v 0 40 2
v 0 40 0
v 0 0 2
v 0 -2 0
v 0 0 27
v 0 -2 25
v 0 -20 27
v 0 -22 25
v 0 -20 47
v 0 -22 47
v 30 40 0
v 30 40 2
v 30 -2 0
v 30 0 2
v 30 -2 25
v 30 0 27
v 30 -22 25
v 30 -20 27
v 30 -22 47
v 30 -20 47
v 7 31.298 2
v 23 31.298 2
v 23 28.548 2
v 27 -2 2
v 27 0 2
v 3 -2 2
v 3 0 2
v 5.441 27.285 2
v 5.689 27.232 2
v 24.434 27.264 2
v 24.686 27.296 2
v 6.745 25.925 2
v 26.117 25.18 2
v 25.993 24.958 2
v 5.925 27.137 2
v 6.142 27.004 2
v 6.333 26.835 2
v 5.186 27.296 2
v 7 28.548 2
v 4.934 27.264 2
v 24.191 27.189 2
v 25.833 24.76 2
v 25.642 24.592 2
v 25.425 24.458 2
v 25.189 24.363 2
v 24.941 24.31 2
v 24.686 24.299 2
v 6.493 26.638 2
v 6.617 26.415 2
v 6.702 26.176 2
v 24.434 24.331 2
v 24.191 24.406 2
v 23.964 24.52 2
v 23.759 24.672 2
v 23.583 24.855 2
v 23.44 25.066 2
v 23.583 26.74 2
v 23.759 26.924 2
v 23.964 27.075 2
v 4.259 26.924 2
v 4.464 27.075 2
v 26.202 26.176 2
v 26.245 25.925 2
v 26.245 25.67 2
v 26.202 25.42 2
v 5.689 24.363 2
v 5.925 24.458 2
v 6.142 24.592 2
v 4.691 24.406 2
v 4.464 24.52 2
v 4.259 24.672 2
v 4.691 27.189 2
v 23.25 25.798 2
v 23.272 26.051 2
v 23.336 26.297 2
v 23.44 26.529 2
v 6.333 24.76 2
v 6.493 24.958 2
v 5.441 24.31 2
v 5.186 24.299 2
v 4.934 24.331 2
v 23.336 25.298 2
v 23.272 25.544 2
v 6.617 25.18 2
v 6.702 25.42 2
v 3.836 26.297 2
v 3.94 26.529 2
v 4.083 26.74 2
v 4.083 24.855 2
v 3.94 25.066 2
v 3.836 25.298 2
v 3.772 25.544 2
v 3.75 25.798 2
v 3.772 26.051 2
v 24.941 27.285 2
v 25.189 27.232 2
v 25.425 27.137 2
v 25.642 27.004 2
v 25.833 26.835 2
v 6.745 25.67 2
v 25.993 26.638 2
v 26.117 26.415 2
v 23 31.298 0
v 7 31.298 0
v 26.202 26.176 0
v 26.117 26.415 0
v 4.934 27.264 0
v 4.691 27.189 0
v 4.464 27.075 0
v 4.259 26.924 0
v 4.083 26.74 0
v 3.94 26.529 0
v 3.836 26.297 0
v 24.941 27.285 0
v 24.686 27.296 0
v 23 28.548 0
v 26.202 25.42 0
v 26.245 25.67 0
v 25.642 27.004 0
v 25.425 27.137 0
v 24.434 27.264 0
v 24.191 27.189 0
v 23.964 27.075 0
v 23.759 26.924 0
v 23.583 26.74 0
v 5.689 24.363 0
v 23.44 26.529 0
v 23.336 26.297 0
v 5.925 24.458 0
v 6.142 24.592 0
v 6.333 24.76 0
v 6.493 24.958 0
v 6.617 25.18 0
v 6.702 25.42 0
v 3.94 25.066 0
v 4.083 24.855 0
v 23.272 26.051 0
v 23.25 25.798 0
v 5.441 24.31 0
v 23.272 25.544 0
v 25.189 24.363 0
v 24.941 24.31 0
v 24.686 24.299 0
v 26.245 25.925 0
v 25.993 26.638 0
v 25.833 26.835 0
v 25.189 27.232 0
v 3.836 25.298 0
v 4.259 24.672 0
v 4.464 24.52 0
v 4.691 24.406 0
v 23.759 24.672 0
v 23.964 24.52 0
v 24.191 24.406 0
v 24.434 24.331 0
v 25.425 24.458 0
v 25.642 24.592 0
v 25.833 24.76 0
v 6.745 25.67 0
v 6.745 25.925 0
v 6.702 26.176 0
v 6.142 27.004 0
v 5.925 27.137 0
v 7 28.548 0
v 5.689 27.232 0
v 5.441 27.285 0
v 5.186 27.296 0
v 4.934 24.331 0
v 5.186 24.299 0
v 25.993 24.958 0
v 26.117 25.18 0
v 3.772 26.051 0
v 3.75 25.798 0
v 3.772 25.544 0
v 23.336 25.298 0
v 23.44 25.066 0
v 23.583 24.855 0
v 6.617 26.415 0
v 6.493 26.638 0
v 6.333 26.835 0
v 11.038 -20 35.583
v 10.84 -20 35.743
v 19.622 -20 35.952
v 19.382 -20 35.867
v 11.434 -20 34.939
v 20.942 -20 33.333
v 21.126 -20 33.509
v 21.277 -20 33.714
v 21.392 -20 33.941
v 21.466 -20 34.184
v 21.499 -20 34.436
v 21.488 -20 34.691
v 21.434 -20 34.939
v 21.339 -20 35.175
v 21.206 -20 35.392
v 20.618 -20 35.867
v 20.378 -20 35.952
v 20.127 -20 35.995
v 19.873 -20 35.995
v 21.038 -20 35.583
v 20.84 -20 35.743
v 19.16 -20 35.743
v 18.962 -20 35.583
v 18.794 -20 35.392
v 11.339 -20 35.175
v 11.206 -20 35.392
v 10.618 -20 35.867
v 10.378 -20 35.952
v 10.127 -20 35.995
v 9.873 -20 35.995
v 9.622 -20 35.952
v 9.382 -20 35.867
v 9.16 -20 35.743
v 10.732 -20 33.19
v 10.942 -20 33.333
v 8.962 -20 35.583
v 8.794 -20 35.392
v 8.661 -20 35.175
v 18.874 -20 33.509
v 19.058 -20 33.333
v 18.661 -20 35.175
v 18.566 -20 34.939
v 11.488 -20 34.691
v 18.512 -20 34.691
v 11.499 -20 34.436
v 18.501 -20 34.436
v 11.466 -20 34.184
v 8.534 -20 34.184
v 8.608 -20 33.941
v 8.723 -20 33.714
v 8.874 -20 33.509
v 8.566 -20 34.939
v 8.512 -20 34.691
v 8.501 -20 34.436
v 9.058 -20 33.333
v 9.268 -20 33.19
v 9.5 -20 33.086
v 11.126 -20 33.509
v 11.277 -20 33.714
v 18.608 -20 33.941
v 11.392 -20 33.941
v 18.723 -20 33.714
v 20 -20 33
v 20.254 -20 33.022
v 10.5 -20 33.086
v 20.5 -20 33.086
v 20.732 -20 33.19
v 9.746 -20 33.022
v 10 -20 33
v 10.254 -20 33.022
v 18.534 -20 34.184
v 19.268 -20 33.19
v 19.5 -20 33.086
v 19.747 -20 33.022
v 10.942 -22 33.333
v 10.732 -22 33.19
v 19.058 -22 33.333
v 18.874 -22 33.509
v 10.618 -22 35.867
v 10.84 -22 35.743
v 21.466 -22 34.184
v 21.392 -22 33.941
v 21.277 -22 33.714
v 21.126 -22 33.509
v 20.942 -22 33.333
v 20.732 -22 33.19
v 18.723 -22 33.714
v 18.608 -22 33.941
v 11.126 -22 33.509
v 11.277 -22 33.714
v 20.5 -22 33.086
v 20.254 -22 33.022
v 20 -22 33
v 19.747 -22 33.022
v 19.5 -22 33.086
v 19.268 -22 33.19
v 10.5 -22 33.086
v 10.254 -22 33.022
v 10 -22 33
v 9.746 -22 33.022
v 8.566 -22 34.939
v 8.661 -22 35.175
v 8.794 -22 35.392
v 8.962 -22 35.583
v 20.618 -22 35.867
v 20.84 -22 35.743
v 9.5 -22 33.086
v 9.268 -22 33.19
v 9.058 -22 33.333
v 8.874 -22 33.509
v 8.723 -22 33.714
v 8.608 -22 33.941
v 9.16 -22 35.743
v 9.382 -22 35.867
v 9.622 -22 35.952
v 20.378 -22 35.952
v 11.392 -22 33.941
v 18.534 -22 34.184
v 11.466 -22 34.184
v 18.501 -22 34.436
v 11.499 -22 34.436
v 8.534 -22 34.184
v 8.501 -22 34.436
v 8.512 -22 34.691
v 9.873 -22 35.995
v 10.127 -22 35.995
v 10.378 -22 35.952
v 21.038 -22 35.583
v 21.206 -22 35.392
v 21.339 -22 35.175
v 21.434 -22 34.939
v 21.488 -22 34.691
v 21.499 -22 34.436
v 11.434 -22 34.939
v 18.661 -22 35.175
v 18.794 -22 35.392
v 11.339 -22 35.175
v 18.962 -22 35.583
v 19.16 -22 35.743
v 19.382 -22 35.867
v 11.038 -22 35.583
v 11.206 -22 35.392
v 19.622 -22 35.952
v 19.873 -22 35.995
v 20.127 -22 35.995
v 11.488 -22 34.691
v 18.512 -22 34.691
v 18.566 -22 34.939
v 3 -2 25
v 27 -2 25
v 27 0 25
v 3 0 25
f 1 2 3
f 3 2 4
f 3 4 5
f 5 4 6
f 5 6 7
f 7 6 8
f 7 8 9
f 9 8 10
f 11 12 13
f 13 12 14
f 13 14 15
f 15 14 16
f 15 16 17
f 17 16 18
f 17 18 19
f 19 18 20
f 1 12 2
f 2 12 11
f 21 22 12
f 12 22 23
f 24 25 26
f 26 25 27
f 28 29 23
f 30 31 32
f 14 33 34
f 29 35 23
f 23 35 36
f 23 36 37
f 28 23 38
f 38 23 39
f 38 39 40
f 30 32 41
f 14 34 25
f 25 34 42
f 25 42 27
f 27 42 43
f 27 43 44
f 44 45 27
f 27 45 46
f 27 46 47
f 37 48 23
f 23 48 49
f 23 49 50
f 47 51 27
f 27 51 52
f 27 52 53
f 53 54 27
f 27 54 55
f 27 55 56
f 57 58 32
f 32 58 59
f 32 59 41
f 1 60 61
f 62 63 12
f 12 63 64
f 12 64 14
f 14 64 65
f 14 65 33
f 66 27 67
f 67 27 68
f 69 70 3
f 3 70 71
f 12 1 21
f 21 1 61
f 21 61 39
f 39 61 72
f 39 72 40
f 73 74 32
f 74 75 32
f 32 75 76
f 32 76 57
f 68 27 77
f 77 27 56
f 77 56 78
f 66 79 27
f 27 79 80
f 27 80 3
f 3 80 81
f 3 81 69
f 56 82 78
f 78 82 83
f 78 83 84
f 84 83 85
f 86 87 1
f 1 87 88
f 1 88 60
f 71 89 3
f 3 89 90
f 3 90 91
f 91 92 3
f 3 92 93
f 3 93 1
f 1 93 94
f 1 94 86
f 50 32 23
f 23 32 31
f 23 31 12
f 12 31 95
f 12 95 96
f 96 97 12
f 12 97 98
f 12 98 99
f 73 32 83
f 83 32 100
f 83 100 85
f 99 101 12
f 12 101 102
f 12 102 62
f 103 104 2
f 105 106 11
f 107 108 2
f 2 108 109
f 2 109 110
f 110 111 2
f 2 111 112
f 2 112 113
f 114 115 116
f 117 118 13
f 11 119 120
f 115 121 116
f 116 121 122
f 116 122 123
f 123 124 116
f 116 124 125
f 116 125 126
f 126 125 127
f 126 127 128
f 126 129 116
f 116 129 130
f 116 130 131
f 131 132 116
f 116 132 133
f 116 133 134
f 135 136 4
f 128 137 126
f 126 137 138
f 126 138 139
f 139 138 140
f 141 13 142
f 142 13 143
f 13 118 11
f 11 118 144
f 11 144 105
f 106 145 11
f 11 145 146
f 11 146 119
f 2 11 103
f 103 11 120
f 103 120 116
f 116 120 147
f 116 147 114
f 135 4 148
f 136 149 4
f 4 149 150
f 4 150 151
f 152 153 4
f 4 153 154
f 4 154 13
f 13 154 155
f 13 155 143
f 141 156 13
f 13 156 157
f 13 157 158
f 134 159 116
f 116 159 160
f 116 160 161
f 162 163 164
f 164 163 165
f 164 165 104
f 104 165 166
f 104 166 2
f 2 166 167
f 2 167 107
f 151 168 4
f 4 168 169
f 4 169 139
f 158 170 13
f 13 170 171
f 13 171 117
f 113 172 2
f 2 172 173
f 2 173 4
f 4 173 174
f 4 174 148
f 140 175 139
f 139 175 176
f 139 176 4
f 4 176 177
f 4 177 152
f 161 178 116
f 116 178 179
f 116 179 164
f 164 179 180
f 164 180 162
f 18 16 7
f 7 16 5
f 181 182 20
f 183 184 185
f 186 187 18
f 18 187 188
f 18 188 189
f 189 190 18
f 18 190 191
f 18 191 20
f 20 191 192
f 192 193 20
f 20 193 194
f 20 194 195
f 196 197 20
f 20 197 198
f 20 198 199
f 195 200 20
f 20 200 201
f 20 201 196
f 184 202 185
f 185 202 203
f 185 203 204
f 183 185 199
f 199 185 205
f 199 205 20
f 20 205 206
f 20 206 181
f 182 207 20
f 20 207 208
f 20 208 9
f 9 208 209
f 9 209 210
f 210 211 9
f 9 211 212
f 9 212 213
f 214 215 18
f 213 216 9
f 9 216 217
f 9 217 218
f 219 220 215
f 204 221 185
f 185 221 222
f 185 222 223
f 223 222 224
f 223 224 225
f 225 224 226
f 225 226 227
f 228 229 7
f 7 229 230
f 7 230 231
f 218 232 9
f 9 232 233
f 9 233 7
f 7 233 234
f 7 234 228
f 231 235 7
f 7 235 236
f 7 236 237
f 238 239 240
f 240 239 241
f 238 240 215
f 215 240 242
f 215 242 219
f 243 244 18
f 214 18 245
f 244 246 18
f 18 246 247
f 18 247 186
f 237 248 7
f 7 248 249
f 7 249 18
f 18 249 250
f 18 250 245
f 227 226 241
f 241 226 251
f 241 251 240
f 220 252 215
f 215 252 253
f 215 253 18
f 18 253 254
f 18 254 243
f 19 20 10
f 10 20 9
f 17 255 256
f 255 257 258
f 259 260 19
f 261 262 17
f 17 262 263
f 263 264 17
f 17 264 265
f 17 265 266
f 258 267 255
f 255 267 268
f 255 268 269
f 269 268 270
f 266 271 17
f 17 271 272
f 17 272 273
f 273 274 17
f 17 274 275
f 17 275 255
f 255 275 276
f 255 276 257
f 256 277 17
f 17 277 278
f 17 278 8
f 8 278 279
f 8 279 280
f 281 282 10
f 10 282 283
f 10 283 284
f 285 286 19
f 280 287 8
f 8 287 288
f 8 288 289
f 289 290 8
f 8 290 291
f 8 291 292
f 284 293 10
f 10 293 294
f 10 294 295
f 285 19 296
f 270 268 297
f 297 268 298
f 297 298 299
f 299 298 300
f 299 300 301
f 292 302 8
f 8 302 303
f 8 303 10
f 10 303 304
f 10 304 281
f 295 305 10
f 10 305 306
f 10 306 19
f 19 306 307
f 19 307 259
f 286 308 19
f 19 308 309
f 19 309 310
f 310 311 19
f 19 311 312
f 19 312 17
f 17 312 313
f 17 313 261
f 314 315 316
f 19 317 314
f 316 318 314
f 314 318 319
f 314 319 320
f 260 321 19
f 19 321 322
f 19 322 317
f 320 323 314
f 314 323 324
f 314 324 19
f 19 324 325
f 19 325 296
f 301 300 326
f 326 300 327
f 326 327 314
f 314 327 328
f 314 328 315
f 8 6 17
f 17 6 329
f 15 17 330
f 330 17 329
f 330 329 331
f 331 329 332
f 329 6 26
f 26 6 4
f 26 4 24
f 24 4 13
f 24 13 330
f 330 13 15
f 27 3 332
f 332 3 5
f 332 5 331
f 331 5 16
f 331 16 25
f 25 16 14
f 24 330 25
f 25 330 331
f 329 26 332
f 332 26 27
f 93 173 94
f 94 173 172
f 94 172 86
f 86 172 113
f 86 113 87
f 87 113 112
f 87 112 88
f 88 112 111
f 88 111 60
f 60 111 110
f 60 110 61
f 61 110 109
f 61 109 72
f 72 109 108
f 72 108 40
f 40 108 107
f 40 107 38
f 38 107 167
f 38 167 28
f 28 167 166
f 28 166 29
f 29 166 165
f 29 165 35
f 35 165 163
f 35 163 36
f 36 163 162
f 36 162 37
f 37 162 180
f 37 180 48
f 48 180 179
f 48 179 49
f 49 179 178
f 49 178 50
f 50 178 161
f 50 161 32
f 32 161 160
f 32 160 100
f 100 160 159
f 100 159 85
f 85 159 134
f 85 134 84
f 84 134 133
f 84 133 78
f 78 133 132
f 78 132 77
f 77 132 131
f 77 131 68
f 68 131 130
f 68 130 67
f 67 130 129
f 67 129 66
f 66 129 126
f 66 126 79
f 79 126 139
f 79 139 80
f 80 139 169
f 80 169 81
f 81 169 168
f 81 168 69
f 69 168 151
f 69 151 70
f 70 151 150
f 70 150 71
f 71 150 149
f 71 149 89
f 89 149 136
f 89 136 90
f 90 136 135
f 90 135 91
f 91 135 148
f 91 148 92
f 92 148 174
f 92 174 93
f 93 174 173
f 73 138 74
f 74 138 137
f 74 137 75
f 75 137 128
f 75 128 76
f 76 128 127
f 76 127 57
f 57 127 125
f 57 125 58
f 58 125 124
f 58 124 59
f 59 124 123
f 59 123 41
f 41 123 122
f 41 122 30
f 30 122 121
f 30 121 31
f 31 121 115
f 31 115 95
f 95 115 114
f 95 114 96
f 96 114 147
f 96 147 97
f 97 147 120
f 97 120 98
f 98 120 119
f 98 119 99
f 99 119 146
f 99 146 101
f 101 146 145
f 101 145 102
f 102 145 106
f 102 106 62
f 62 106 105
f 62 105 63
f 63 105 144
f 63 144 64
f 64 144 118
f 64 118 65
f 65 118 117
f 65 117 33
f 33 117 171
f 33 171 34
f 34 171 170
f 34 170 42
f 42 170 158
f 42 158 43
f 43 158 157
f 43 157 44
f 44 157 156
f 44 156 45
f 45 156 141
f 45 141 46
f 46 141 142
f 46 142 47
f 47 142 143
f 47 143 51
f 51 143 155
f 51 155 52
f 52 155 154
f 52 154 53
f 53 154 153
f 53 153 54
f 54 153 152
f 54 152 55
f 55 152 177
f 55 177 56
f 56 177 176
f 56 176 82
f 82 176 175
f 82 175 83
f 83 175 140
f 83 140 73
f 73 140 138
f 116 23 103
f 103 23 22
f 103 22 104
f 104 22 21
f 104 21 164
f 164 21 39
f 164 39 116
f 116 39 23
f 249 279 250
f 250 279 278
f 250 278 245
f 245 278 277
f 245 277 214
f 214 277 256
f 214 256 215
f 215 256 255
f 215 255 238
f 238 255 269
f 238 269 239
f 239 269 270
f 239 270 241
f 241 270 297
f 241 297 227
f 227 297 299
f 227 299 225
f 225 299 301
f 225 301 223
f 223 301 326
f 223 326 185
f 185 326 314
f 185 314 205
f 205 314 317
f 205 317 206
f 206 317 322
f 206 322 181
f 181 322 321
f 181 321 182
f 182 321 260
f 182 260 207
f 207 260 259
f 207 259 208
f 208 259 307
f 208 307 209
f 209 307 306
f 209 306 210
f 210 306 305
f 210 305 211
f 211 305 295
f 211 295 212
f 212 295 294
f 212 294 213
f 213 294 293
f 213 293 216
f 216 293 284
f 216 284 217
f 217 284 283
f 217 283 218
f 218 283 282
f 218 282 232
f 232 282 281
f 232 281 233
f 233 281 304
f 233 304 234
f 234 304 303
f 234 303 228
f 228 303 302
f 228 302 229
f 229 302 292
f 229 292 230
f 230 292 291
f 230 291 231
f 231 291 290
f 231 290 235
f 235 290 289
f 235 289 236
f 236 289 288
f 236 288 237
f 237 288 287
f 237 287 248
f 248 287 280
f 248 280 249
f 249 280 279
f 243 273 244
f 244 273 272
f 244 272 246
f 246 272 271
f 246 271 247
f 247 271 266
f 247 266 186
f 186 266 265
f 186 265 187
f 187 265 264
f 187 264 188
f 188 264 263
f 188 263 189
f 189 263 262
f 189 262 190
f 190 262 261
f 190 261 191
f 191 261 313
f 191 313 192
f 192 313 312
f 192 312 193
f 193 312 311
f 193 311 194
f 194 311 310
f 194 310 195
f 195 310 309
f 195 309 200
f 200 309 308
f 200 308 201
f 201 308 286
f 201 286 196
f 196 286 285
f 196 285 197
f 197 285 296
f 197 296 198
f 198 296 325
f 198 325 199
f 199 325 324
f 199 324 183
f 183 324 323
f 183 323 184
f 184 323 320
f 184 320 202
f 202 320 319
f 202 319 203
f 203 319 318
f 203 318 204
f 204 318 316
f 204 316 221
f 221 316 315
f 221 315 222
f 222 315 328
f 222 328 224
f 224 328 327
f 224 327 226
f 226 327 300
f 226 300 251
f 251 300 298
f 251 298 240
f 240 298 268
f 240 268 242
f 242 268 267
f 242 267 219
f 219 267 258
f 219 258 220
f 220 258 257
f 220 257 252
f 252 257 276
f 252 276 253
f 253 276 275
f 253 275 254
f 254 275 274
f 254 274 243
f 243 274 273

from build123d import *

# Parameters (mm, degrees)
SKETCH1_W           = 30
SKETCH1_H           = 40
BOSS_EXTRUDE1_DEPTH = 2
BOSS_EXTRUDE3_DEPTH = 30
SKETCH6_W           = 24
SKETCH6_H           = 23
CUT_EXTRUDE2_DEPTH  = 2
SKETCH7_R           = 1.5
SKETCH7_W           = 16
SKETCH7_H           = 2.75
CUT_EXTRUDE3_DEPTH  = 10
SKETCH9_R           = 1.5
CUT_EXTRUDE4_DEPTH  = 10


with BuildPart() as part:
    # Sketch1 → Boss-Extrude1 (new body)
    with BuildSketch(Plane.XY):
        with Locations((15, 20)):
            Rectangle(SKETCH1_W, SKETCH1_H)
    extrude(amount=BOSS_EXTRUDE1_DEPTH)

    # Sketch5 → Boss-Extrude3 (add)
    with BuildSketch(Plane(origin=(0, 0, 0), x_dir=(0, 0, -1), z_dir=(1, 0, 0))):
        Polygon((-27, -20), (-47, -20), (-47, -22), (-26.3, -22), (-25, -22), (-25, -2), (0, -2), (0, 0), (-2, 0), (-27, 0), align=None)
    extrude(amount=BOSS_EXTRUDE3_DEPTH)

    # Sketch6 → Cut-Extrude2 (cut)
    with BuildSketch(Plane(origin=(0, 0, 0), x_dir=(1, 0, 0), z_dir=(0, 1, 0))):
        with Locations((15, -13.5)):
            Rectangle(SKETCH6_W, SKETCH6_H)
    extrude(amount=-CUT_EXTRUDE2_DEPTH, mode=Mode.SUBTRACT)

    # Sketch7 → Cut-Extrude3 (cut)
    with BuildSketch(Plane(origin=(0, 0, 0), x_dir=(-1, 0, 0), z_dir=(0, 0, -1))):
        with Locations((-24.75, 25.797552116)):
            Circle(SKETCH7_R)
        with Locations((-5.25, 25.797552116)):
            Circle(SKETCH7_R)
        with Locations((-15, 29.922552116)):
            Rectangle(SKETCH7_W, SKETCH7_H)
    extrude(amount=-CUT_EXTRUDE3_DEPTH, mode=Mode.SUBTRACT)

    # Sketch9 → Cut-Extrude4 (cut)
    with BuildSketch(Plane.XZ.offset(22)):
        with Locations(Location((20, 34.5, 0), (0, 0, 270))):
            Circle(SKETCH9_R)
        with Locations(Location((10, 34.5, 0), (0, 0, 270))):
            Circle(SKETCH9_R)
    extrude(amount=-CUT_EXTRUDE4_DEPTH, mode=Mode.SUBTRACT)


solid = part.part
